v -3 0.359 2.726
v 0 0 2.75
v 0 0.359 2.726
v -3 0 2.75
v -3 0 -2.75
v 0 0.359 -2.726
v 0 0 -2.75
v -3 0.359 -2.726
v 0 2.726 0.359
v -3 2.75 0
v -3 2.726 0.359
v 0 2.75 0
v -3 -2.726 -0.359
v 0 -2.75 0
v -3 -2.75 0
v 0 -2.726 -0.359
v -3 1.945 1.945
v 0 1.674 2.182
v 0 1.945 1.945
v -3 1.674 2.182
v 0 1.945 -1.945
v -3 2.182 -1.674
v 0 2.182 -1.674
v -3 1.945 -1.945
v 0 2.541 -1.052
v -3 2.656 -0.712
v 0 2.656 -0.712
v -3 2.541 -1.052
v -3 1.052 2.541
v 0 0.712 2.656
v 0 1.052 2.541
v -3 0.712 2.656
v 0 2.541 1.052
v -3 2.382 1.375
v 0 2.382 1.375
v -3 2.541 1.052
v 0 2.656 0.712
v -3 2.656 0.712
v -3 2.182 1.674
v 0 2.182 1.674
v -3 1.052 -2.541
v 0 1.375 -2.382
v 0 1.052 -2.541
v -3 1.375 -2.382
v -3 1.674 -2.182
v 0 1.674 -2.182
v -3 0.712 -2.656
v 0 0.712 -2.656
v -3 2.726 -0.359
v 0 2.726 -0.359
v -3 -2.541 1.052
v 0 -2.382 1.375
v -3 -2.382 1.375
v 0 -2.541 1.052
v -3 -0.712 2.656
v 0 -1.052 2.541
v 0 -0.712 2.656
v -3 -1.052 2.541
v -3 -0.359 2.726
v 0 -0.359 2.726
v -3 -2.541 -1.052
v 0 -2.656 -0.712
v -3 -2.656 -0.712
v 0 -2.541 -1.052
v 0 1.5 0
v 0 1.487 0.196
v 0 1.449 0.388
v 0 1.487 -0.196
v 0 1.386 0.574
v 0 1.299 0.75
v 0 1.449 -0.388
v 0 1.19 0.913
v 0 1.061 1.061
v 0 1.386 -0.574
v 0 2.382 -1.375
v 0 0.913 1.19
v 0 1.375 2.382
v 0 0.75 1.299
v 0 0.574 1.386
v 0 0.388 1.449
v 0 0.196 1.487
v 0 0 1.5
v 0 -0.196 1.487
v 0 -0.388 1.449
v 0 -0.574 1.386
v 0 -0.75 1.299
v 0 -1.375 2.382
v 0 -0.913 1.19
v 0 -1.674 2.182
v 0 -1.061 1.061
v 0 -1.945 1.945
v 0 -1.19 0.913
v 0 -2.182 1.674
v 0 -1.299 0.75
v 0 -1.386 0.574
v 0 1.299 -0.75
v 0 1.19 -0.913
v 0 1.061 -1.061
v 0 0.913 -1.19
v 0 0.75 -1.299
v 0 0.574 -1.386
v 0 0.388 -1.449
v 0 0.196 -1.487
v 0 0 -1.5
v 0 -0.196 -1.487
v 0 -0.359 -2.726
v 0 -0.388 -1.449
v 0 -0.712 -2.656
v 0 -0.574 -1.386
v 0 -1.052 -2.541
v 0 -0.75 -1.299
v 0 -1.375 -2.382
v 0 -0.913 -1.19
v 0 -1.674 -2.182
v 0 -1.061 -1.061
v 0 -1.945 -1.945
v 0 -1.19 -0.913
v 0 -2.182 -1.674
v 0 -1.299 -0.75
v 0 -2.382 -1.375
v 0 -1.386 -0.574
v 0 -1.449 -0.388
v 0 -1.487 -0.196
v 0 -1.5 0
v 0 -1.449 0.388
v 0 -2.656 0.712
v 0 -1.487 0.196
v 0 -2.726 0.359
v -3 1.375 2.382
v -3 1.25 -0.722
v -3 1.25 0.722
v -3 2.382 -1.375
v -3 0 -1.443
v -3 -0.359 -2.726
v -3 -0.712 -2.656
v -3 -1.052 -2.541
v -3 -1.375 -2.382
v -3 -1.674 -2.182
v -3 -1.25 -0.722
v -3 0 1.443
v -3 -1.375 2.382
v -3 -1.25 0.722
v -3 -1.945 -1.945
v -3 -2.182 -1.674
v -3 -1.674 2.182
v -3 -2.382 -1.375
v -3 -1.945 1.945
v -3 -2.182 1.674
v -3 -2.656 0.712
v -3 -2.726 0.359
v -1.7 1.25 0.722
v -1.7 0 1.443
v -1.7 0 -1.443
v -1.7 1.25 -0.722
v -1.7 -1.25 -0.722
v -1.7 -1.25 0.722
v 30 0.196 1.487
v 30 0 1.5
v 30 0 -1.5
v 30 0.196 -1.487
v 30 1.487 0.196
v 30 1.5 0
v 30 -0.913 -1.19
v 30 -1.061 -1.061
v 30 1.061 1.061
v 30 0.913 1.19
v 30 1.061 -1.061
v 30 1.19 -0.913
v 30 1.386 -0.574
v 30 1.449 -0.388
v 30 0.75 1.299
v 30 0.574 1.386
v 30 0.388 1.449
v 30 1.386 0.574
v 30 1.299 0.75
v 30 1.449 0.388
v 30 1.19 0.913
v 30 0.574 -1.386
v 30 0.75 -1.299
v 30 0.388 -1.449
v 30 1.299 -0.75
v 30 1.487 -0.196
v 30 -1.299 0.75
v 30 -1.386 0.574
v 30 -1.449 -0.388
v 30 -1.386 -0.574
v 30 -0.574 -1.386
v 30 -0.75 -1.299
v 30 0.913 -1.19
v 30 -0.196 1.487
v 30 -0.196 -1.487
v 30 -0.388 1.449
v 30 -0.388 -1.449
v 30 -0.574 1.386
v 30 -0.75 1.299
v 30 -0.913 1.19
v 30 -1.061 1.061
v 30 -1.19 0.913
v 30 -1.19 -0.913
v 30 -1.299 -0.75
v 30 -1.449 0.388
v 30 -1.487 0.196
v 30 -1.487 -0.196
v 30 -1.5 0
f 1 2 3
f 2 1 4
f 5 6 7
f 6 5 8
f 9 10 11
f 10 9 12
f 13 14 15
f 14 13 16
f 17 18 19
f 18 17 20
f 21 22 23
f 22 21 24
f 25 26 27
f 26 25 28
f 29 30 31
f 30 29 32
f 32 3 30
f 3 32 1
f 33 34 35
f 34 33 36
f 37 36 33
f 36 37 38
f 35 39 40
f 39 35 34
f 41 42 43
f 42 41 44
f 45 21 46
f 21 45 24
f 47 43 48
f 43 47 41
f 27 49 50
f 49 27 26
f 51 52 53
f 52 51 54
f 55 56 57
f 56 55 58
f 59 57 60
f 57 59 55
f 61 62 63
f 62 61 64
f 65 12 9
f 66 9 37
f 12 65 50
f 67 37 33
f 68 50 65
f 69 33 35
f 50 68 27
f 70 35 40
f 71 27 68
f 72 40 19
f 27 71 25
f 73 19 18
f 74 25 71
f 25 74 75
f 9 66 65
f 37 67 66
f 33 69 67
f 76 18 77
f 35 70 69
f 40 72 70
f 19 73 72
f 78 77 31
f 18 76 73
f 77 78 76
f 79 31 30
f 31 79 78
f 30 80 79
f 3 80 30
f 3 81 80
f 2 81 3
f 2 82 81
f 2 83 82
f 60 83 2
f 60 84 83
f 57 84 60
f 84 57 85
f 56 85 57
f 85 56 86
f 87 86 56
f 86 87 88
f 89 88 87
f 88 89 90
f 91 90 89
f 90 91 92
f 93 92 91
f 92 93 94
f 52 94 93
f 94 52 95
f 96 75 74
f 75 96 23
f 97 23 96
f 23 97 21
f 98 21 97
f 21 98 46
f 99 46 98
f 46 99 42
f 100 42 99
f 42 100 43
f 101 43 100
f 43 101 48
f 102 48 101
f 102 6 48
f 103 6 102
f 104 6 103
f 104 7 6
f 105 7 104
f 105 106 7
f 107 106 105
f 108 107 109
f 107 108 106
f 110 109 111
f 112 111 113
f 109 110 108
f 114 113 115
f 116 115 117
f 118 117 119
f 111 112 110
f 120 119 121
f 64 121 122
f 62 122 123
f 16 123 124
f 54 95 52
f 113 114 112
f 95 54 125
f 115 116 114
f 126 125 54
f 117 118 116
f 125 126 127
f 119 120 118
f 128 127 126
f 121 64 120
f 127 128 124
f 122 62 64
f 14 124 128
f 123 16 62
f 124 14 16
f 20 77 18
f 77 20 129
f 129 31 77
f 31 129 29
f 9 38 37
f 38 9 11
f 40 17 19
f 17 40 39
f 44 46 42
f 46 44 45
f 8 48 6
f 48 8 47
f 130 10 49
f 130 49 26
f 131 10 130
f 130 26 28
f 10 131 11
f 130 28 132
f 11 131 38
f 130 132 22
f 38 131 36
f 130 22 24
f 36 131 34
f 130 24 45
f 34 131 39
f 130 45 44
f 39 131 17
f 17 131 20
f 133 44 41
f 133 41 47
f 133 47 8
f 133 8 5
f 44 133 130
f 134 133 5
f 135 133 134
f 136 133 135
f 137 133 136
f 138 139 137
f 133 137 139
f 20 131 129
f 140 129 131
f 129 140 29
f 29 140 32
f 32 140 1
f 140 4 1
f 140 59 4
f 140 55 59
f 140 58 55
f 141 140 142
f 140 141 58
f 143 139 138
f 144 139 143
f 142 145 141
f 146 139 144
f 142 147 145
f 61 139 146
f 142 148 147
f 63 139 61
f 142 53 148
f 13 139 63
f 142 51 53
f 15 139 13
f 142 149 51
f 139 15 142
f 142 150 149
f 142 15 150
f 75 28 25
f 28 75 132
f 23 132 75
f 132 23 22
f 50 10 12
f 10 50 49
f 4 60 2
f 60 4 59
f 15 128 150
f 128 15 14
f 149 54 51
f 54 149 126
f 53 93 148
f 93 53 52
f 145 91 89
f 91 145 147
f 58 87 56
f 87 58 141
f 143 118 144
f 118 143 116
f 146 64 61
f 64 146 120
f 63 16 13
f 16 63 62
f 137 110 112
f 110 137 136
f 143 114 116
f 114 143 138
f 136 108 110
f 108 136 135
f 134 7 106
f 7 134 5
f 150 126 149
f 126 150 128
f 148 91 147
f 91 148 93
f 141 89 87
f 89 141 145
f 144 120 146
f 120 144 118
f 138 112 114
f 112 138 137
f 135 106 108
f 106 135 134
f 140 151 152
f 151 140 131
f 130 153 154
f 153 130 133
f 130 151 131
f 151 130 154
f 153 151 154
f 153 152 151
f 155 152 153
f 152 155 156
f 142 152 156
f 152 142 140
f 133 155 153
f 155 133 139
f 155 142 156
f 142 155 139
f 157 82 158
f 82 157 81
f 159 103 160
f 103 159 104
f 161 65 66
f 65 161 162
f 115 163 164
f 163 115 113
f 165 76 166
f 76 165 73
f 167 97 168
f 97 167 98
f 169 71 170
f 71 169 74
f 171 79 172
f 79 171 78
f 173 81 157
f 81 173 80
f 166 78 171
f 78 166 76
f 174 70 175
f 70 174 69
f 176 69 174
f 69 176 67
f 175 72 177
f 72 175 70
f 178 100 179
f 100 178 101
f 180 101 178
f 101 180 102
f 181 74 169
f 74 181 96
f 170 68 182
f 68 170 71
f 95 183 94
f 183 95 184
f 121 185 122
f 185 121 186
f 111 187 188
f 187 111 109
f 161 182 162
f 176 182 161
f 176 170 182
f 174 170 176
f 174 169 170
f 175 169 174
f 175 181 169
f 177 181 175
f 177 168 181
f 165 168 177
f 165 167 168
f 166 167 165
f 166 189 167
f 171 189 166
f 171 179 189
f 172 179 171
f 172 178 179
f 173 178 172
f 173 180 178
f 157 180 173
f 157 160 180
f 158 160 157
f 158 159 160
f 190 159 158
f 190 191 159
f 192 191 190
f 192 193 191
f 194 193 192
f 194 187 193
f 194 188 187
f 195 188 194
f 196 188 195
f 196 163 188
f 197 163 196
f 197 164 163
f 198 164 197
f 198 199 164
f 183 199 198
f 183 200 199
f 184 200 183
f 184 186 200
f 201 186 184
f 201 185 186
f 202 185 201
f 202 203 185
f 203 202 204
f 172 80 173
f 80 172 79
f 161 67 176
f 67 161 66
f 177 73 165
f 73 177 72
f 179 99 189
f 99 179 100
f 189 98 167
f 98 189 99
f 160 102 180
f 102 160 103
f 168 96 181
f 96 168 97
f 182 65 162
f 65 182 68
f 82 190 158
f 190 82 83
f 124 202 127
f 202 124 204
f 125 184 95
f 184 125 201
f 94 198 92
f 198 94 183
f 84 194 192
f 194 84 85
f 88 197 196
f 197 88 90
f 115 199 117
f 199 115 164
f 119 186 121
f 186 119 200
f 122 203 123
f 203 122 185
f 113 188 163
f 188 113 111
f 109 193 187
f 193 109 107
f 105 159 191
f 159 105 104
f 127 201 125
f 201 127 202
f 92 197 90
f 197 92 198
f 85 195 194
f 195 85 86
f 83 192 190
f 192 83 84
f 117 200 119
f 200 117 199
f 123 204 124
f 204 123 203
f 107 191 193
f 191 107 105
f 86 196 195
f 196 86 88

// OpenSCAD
// file: ../../../lib/nutsnbolts/data-access.scad
// Norm Nuts and Bolts - a OpenSCAD library
// Copyright (C) 2012  Johannes Kneer

// This program is free software: you can redistribute it and/or modify
// it under the terms of the GNU General Public License as published by
// the Free Software Foundation, either version 3 of the License, or
// (at your option) any later version.

// This program is distributed in the hope that it will be useful,
// but WITHOUT ANY WARRANTY; without even the implied warranty of
// MERCHANTABILITY or FITNESS FOR A PARTICULAR PURPOSE.  See the
// GNU General Public License for more details.

// You should have received a copy of the GNU General Public License
// along with this program.  If not, see <http://www.gnu.org/licenses/>.


// DATABASE ACCESS FUNCTIONS AND CONSTANTS



// == CONSTANTS ==

// screw table access keys
_NB_S_DESC            = 0;
_NB_S_FAMKEY			    = 1;
_NB_S_LENGTH          = 2;
_NB_S_NOTHREAD_LENGTH = 3;

_NB_F_DESC			      = 0;
_NB_F_OUTER_DIA       = 1;
_NB_F_INNER_DIA       = 2;
_NB_F_LEAD            = 3;
_NB_F_KEY             = 4;
_NB_F_KEY_DEPTH       = 5;
_NB_F_HEAD_HEIGHT     = 6;
_NB_F_HEAD_DIA        = 7;
_NB_F_NUT_KEY         = 8;
_NB_F_NUT_HEIGHT      = 9;
_NB_F_PITCH_FINE      = 10;
_NB_F_PITCH_MEDIUM    = 11;
_NB_F_PITCH_COARSE    = 12;


// == FUNCTIONS ==

// _get_screw("descriptor")   with descriptor = M8x25
//   find the line for a general object in the data matrix

function _get_screw(n) = data_screw[search([n], data_screw)[0]];
function _get_screw_fam(n) = data_screw_fam[search([_get_screw(n)[_NB_S_FAMKEY]], data_screw_fam)[0]];

function _get_fam(n) = data_screw_fam[search([n], data_screw_fam)[0]];


// _get_XXXXX("descriptor") functions
// find a single property in the database

function _get_desc(n)        = _get_screw(n)[_NB_S_DESC];
function _get_famkey(n)         = _get_screw(n)[_NB_S_FAMKEY];
function _get_length(n)      = _get_screw(n)[_NB_S_LENGTH];
function _get_nt_length(n)   = _get_screw(n)[_NB_S_NOTHREAD_LENGTH];

function _get_outer_dia(n)   = _get_screw_fam(n)[_NB_F_OUTER_DIA];
function _get_inner_dia(n)   = _get_screw_fam(n)[_NB_F_INNER_DIA];
function _get_lead(n)        = _get_screw_fam(n)[_NB_F_LEAD];
function _get_head_height(n) = _get_screw_fam(n)[_NB_F_HEAD_HEIGHT];
function _get_head_dia(n)    = _get_screw_fam(n)[_NB_F_HEAD_DIA];
function _get_nut_key(n)     = _get_screw_fam(n)[_NB_F_NUT_KEY];
function _get_nut_height(n)  = _get_screw_fam(n)[_NB_F_NUT_HEIGHT];
function _get_fine_pitch(n)  = _get_screw_fam(n)[_NB_F_PITCH_FINE];
function _get_medium_pitch(n)  = _get_screw_fam(n)[_NB_F_PITCH_MEDIUM];
function _get_coarse_pitch(n)  = _get_screw_fam(n)[_NB_F_PITCH_COARSE];
// main file
/**********************************************************************************************************************
 **
 ** parts/vitamins/screw_M3x30.scad
 **
 ** This file renders a screw of the dimensions specified by the file name.
 **
 **********************************************************************************************************************/

include <../../../lib/nutsnbolts/cyl_head_bolt.scad>;

$fn = 48;
rotate([0, -90, 0])
	screw("M3x30"); 
